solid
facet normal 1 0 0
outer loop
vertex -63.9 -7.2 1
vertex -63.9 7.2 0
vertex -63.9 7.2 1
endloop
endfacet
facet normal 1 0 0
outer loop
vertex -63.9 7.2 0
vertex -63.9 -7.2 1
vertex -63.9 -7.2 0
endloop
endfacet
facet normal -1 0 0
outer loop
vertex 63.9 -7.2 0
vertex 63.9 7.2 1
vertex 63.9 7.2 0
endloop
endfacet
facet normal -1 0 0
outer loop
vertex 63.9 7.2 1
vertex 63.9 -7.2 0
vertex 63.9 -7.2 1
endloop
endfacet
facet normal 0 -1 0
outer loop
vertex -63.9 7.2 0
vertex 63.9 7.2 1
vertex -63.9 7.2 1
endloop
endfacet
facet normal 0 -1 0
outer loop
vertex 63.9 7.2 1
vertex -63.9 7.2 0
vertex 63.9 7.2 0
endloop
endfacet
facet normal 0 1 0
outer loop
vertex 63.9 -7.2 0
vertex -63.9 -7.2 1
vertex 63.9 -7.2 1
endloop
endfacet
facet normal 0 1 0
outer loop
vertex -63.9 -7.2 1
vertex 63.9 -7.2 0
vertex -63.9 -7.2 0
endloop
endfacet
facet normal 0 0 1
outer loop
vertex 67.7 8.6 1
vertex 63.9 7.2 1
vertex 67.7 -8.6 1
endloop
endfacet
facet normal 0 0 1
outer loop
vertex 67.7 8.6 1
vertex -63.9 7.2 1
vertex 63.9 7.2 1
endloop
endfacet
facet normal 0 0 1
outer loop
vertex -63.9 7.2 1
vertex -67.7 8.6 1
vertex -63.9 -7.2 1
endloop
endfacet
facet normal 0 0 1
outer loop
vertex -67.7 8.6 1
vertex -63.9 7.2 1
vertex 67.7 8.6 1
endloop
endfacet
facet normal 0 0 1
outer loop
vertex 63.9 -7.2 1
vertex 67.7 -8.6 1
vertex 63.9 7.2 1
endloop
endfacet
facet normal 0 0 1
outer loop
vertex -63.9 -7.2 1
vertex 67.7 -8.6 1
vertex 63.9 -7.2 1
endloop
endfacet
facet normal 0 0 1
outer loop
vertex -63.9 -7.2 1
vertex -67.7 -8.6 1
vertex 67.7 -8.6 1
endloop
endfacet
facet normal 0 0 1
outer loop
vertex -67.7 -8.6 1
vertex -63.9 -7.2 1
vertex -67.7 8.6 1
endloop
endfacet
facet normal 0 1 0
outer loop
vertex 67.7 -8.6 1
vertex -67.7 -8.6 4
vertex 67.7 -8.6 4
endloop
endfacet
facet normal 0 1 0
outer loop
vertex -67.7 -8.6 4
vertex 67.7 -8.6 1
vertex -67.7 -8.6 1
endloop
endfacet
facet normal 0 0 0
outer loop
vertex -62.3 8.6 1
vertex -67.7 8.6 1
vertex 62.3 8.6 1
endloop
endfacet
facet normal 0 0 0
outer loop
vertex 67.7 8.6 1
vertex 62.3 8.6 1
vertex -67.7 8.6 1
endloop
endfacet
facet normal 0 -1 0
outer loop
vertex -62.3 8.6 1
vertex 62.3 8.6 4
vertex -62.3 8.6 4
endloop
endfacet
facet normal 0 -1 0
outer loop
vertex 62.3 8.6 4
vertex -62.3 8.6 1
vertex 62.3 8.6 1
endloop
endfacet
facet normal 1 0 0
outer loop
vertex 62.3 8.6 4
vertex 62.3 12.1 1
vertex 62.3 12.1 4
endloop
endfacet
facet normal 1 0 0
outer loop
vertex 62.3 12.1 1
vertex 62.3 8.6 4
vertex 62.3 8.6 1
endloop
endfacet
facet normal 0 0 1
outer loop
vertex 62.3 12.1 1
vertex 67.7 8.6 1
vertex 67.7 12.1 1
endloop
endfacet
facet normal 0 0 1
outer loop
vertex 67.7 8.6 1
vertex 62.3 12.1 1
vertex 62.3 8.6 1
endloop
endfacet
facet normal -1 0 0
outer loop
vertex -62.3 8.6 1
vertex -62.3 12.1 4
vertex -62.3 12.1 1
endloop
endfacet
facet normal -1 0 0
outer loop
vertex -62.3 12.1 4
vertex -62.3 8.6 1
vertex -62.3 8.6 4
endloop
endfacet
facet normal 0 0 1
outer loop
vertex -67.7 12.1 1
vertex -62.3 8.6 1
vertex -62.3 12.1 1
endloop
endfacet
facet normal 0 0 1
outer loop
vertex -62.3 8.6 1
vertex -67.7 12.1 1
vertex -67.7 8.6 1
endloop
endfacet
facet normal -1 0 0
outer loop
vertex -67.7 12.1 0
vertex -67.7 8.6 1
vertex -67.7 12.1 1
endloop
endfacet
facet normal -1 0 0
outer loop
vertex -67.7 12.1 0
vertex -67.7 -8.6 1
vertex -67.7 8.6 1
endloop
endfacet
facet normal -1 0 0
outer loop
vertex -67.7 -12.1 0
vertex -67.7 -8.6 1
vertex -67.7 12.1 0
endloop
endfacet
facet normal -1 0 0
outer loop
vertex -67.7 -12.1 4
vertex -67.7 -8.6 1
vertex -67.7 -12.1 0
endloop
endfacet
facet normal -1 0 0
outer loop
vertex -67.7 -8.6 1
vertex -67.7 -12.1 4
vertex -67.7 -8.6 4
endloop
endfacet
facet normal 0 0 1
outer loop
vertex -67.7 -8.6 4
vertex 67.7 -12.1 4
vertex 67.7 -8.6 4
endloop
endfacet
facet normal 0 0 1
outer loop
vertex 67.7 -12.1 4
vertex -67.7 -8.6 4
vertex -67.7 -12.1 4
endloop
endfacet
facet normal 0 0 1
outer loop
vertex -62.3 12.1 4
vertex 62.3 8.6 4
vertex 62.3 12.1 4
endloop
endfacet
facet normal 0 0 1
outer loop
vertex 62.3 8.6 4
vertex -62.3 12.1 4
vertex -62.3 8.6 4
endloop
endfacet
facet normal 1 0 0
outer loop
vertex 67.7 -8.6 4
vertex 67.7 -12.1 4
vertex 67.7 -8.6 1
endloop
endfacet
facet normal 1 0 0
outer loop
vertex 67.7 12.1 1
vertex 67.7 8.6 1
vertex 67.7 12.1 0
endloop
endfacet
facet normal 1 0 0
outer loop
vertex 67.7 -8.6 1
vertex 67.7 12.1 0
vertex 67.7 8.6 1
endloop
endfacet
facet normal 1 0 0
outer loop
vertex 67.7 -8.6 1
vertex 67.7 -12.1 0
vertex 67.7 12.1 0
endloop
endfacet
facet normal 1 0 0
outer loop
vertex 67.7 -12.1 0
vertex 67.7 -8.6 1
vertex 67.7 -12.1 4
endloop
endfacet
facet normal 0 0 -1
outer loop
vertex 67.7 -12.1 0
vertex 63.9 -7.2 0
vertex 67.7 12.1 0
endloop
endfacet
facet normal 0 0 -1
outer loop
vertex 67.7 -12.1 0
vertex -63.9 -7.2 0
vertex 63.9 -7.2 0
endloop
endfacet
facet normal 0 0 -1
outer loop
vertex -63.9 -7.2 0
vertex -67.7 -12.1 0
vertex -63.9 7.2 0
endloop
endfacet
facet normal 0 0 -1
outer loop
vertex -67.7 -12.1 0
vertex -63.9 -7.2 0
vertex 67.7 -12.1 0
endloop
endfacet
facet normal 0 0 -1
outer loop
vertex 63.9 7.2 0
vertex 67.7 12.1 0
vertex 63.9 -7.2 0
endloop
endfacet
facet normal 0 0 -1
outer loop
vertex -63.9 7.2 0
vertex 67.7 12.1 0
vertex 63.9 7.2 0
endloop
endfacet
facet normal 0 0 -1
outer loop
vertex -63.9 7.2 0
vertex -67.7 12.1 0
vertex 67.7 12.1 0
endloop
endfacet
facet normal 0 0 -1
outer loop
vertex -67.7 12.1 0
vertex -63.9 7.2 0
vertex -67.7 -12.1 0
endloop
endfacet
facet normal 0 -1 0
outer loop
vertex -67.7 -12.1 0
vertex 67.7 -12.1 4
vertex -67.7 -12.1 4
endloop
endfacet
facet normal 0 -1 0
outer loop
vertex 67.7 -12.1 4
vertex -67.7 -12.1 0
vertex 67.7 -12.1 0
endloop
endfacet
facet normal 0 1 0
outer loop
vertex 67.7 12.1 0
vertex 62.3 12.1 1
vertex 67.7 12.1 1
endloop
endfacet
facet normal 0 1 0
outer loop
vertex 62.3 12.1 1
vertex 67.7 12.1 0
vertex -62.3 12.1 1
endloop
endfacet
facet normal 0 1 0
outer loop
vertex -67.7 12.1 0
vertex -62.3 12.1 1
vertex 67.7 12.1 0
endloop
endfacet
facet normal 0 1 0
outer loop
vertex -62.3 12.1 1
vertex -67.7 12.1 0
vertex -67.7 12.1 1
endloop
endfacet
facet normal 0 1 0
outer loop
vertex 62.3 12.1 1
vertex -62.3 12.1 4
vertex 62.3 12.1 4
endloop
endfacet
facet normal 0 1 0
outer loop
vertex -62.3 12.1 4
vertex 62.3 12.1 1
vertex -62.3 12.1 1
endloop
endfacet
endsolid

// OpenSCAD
// -*- mode: SCAD ; c-file-style: "ellemtel" ; coding: utf-8 -*-
//
// Holder for Minox film strips
//
// A holder for Minox 11 picture film strips for use with generic flatbed
// scanners with a transparency unit and holder for 135 (35 mm) film.
//
// (c) 2018 Roland Sieker <ospalh@gmail.com>
// Licence: CC-BY-SA 4.0


// ... to preview. You will get all parts when you click "Create Thing".
part = "Halter"; // [Halter: Halter, Klemme: Klemme]

// Set this to "render" and click on "Create Thing" when done with the setup.
preview = 1; // [0:render, 1:preview]
// I put this in every design, but it shouldn't make a difference on this one.

w_loch = 24.6;
// w_streifen = 16;  // real width
w_streifen = 16.4;  // slightly more so the movable part becomes more stable
w_bild = 14; // Nominally 13. This should work out
l_bild = 25.4;
// Total pitch, picture plus number and hole. Measured. Not too
// important. Might be exactly 25.4 mm, as the format was made by
// Americans.
bilder_ps = 5;


p_h = 1;
p_k = 3;

/* [Hidden] */

// Done with the customizer

// *******************************************************
// Extra parameters. These can be changed reasonably safely.


// w = 1.8;  // Wall width
// p = 1.2;  // Bottom, top plate hight
c = 0.4;  // Clearance
c_x = 0.4;
angle = 60; // Overhangs much below 60 degrees are a problem for me

// *******************************************************
// Some shortcuts. These shouldn't be changed

tau = 2 * PI;  // pi is still wrong. tau = circumference / r

xy_factor = 1/tan(angle);
// To get from a hight to a horizontal width inclined correctly
z_factor = tan(angle);  // The other way around

w_halter = w_loch - c;
w_k = w_streifen + c;
w_nut = w_k + c;
w_steg = (w_halter - w_nut) / 2;
w_x = 1.8;
b_nase = 3;
b_nnut = b_nase + c_x;
l_streifen = l_bild * bilder_ps;
l_loch_k = l_streifen + c;
l_loch_h = l_loch_k + c;
l_k = l_loch_k + 2 * w_x + c;
l_halter = l_k  + c + 2 * w_x;
w_loch_h = w_bild + c;
h_halter = p_h + p_k;

xo_o = l_k/2 - b_nase;

some_distance = 0.6 * w_halter +  w_streifen + w_steg;
ms = 0.01;  // Muggeseggele.

// fn for differently sized objects and fs, fa; all for preview or rendering.
pna = 40;
pnb = 15;
pa = 5;
ps = 1;
rna = 180;
rnb = 30;
ra = 1;
rs = 0.1;
function na() = (preview) ? pna : rna;
function nb() = (preview) ? pnb : rnb;
$fs = (preview) ? ps : rs;
$fa = (preview) ? pa : ra;

// *******************************************************
// End setup



// *******************************************************
// Generate the parts

print_part();
// preview_parts();
// stack_parts();


module print_part()
{
   if ("Halter" == part)
   {
      halter();
   }
   if ("Klemme" == part)
   {
      klemme();
   }
}

module preview_parts()
{
   halter();
   translate([0, some_distance, 0])
   {
      klemme();
   }
}

module stack_parts()
{
   // intersection()
   {
      color("yellow")
      {
         halter();
      }
      translate([0, 0, p_h+2*ms])
      {
         color("red")
         {
            klemme();
         }
      }
   }
}

// *******************************************************
// Code for the parts themselves


module halter()
{
   difference()
   {
      translate([0, 0, h_halter/2])
      {
         cube([l_halter, w_halter, h_halter], center=true);
      }
      filmloch_halter();
   }
}

module filmloch_halter()
{
   cube([l_loch_h, w_loch_h, 2*h_halter+2*ms], center=true);
   translate([0,0, p_h+p_k/2+ms])
   {
      cube([l_halter+2*ms, w_nut, p_k+2*ms], center=true);
   }
   eine_kerbe();
   mirror()
   {
      eine_kerbe();
   }
}


module klemme()
{
   difference()
   {
      translate([0,0, p_k/2])
      {
         cube([l_k, w_streifen, p_k], center=true);
      }
      cube([l_streifen, w_bild, 3*p_k], center=true);
   }
   eine_nase();
   mirror()
   {
      eine_nase();
   }
}


module eine_nase()
{
   translate([xo_o, w_streifen/2-ms, 0])
   {
      cube([b_nase, w_steg + 0.5*c, p_k+ms]);
   }
}

module eine_kerbe()
{
   translate([xo_o-c_x, w_nut/2-ms, p_h])
   {
      cube([b_nase+2*w_x+2*c_x, w_steg + c + ms, p_k+ms]);
   }
}
